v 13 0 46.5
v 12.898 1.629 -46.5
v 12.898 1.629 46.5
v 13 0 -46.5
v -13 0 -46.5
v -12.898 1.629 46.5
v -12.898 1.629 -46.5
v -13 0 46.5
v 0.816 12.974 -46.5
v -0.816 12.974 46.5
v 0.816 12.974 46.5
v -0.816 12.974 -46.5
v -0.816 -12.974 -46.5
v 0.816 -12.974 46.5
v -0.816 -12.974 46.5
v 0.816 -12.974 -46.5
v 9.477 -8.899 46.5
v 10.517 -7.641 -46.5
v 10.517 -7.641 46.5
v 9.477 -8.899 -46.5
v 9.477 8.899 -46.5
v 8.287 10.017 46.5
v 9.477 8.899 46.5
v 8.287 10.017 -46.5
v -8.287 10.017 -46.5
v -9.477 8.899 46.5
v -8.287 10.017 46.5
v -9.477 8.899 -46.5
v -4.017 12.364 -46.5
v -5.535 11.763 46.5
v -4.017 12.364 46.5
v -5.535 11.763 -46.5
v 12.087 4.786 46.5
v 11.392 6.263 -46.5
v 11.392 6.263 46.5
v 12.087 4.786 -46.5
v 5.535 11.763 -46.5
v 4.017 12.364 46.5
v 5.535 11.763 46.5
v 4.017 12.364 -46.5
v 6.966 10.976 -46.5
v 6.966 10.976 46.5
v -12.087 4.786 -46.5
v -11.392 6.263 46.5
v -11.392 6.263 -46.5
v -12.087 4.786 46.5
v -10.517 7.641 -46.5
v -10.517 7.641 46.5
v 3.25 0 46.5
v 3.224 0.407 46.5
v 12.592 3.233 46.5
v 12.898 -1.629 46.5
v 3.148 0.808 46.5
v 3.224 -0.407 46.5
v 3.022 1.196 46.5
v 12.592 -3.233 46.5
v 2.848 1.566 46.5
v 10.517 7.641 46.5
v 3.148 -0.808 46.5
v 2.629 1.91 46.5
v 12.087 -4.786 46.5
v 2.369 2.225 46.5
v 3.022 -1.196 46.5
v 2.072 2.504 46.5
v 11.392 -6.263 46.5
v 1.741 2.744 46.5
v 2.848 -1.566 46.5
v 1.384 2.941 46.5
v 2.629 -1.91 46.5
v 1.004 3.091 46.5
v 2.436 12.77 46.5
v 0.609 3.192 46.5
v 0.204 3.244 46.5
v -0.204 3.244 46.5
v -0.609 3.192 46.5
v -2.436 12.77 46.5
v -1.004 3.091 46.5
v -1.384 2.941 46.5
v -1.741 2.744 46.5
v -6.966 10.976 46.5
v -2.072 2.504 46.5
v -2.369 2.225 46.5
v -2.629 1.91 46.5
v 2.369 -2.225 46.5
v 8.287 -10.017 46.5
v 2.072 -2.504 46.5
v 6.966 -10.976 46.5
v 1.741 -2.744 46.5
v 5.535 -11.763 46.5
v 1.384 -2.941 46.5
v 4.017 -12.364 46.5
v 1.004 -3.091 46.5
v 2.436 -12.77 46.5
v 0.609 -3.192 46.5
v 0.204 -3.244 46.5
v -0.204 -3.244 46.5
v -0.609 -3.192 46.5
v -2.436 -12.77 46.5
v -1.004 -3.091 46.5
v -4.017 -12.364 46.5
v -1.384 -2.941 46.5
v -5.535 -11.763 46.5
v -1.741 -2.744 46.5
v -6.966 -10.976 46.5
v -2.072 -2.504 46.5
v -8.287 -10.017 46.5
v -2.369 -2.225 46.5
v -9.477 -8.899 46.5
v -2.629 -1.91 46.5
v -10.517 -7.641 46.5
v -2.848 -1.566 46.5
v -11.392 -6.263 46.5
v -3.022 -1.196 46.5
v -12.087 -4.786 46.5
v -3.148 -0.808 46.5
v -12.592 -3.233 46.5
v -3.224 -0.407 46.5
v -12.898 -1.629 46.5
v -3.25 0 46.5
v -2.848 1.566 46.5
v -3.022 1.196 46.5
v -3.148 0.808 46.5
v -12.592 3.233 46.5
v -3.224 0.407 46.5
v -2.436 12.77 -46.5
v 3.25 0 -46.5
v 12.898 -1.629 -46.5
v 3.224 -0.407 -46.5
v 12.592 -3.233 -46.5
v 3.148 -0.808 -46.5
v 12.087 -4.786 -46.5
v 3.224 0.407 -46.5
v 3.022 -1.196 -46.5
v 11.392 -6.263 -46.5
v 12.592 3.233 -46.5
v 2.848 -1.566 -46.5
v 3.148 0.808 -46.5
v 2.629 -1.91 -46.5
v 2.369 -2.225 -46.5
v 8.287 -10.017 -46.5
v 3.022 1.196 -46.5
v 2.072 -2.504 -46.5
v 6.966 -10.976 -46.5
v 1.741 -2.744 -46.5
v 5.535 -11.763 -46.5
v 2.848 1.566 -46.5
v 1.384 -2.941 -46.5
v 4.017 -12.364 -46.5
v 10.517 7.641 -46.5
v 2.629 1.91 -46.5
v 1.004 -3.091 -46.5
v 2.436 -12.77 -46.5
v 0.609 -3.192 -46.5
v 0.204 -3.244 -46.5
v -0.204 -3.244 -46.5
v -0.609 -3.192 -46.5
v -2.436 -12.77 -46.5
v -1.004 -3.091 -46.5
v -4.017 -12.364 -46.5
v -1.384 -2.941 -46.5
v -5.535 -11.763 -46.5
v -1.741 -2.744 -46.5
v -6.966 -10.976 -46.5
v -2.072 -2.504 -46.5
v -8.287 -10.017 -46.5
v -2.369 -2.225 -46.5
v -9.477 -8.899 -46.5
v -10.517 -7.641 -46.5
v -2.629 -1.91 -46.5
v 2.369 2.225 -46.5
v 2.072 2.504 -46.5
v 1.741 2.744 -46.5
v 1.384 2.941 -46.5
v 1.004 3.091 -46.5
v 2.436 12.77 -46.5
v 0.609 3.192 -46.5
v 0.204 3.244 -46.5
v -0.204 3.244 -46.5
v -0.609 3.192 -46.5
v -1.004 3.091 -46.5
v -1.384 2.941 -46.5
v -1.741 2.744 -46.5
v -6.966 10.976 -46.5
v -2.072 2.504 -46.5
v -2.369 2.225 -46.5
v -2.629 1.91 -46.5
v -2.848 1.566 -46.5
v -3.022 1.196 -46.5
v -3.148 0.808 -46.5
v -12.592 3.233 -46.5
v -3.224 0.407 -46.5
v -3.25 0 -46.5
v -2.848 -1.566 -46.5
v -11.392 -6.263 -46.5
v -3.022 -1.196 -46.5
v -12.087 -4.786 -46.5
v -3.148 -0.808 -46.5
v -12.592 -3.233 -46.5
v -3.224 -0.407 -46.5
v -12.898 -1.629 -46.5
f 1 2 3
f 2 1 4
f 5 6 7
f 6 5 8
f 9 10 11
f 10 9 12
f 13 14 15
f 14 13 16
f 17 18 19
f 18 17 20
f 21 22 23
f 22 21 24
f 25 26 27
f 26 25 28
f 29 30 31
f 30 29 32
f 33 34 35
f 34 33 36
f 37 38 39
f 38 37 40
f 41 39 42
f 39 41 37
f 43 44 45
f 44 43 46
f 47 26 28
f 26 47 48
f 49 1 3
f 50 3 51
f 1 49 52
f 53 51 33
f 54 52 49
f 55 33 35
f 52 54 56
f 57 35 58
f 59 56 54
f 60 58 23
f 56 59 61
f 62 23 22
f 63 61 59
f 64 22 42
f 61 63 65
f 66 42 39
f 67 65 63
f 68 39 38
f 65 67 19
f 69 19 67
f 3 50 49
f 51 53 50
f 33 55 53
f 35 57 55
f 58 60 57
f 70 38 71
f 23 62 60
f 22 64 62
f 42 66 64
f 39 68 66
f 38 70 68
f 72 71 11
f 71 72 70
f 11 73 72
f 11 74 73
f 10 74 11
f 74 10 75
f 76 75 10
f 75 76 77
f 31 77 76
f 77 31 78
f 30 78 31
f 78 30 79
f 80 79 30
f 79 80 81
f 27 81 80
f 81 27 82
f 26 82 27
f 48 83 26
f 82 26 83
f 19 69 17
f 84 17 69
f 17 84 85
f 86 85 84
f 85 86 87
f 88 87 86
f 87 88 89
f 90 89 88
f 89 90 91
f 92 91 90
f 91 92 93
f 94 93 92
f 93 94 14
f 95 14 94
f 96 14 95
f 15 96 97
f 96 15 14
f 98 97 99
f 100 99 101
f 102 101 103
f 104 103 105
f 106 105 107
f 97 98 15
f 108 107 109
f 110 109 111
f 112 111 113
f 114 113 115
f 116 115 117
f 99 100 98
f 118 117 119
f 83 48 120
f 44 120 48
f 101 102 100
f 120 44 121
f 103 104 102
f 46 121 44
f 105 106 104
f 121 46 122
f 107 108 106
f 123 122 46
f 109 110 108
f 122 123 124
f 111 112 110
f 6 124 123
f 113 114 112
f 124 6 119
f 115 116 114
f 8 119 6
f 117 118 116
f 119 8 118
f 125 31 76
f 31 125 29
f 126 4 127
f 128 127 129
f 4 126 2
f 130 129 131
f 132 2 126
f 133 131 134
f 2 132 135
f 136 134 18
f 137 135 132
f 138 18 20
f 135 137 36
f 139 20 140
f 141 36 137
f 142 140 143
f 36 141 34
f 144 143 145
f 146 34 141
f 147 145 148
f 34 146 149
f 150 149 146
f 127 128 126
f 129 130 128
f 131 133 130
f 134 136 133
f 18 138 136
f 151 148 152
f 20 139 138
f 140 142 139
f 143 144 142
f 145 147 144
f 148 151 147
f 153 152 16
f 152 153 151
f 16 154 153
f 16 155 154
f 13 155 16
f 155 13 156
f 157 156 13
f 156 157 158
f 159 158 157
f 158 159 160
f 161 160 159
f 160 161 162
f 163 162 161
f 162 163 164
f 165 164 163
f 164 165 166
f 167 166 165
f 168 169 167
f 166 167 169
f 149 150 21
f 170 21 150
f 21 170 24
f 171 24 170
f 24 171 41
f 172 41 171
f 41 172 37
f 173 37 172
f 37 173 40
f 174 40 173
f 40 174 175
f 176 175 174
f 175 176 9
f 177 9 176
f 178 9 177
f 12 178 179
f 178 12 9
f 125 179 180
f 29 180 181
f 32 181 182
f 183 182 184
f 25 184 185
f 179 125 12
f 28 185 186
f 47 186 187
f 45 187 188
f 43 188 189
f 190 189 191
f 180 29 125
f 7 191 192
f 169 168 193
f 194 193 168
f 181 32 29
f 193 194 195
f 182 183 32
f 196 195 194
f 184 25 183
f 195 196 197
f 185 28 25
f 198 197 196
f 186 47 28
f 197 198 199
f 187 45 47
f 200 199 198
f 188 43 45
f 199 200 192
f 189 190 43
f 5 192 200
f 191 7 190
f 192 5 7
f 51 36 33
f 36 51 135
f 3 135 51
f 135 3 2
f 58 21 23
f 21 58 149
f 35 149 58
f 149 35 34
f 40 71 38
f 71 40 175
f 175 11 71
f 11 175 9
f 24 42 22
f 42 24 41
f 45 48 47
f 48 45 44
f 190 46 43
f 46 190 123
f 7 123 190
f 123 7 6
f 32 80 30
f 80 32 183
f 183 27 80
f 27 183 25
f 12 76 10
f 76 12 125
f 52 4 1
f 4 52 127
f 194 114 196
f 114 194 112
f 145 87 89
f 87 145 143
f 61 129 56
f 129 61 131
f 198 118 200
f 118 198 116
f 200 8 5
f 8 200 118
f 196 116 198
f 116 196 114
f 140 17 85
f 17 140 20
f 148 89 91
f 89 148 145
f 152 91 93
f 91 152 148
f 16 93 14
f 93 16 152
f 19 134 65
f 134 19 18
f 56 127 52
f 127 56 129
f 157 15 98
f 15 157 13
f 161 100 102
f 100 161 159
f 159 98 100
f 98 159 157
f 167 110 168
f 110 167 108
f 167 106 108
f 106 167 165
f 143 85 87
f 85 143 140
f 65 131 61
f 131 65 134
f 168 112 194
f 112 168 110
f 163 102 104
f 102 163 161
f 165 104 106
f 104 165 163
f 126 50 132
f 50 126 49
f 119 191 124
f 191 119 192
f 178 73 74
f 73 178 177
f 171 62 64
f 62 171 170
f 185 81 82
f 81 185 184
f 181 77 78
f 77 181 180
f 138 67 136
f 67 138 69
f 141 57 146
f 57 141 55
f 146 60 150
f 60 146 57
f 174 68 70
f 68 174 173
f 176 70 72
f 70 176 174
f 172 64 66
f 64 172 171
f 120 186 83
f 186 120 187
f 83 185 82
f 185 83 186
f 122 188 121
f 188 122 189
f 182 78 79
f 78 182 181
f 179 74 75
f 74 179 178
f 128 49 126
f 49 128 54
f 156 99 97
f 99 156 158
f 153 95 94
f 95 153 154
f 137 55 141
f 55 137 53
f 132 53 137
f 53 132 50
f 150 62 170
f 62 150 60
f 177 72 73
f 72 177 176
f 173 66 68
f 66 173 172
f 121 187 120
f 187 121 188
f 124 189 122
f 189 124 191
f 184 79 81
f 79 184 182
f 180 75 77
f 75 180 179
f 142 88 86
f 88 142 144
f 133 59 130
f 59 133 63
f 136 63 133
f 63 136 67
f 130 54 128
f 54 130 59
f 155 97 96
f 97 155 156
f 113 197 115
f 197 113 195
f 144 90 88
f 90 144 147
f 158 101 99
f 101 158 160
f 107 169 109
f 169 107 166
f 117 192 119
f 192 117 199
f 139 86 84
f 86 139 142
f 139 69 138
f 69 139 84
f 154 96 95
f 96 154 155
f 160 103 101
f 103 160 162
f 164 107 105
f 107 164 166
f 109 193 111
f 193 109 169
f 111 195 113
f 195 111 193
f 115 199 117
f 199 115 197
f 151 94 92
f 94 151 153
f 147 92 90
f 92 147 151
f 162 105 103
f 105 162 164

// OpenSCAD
$fn = 50;


difference() {
	union() {
		translate(v = [0, 0, -46.5000000000]) {
			cylinder(h = 93, r = 13.0000000000);
		}
	}
	union() {
		translate(v = [0, 0, -100.0000000000]) {
			cylinder(h = 200, r = 3.2500000000);
		}
	}
}
